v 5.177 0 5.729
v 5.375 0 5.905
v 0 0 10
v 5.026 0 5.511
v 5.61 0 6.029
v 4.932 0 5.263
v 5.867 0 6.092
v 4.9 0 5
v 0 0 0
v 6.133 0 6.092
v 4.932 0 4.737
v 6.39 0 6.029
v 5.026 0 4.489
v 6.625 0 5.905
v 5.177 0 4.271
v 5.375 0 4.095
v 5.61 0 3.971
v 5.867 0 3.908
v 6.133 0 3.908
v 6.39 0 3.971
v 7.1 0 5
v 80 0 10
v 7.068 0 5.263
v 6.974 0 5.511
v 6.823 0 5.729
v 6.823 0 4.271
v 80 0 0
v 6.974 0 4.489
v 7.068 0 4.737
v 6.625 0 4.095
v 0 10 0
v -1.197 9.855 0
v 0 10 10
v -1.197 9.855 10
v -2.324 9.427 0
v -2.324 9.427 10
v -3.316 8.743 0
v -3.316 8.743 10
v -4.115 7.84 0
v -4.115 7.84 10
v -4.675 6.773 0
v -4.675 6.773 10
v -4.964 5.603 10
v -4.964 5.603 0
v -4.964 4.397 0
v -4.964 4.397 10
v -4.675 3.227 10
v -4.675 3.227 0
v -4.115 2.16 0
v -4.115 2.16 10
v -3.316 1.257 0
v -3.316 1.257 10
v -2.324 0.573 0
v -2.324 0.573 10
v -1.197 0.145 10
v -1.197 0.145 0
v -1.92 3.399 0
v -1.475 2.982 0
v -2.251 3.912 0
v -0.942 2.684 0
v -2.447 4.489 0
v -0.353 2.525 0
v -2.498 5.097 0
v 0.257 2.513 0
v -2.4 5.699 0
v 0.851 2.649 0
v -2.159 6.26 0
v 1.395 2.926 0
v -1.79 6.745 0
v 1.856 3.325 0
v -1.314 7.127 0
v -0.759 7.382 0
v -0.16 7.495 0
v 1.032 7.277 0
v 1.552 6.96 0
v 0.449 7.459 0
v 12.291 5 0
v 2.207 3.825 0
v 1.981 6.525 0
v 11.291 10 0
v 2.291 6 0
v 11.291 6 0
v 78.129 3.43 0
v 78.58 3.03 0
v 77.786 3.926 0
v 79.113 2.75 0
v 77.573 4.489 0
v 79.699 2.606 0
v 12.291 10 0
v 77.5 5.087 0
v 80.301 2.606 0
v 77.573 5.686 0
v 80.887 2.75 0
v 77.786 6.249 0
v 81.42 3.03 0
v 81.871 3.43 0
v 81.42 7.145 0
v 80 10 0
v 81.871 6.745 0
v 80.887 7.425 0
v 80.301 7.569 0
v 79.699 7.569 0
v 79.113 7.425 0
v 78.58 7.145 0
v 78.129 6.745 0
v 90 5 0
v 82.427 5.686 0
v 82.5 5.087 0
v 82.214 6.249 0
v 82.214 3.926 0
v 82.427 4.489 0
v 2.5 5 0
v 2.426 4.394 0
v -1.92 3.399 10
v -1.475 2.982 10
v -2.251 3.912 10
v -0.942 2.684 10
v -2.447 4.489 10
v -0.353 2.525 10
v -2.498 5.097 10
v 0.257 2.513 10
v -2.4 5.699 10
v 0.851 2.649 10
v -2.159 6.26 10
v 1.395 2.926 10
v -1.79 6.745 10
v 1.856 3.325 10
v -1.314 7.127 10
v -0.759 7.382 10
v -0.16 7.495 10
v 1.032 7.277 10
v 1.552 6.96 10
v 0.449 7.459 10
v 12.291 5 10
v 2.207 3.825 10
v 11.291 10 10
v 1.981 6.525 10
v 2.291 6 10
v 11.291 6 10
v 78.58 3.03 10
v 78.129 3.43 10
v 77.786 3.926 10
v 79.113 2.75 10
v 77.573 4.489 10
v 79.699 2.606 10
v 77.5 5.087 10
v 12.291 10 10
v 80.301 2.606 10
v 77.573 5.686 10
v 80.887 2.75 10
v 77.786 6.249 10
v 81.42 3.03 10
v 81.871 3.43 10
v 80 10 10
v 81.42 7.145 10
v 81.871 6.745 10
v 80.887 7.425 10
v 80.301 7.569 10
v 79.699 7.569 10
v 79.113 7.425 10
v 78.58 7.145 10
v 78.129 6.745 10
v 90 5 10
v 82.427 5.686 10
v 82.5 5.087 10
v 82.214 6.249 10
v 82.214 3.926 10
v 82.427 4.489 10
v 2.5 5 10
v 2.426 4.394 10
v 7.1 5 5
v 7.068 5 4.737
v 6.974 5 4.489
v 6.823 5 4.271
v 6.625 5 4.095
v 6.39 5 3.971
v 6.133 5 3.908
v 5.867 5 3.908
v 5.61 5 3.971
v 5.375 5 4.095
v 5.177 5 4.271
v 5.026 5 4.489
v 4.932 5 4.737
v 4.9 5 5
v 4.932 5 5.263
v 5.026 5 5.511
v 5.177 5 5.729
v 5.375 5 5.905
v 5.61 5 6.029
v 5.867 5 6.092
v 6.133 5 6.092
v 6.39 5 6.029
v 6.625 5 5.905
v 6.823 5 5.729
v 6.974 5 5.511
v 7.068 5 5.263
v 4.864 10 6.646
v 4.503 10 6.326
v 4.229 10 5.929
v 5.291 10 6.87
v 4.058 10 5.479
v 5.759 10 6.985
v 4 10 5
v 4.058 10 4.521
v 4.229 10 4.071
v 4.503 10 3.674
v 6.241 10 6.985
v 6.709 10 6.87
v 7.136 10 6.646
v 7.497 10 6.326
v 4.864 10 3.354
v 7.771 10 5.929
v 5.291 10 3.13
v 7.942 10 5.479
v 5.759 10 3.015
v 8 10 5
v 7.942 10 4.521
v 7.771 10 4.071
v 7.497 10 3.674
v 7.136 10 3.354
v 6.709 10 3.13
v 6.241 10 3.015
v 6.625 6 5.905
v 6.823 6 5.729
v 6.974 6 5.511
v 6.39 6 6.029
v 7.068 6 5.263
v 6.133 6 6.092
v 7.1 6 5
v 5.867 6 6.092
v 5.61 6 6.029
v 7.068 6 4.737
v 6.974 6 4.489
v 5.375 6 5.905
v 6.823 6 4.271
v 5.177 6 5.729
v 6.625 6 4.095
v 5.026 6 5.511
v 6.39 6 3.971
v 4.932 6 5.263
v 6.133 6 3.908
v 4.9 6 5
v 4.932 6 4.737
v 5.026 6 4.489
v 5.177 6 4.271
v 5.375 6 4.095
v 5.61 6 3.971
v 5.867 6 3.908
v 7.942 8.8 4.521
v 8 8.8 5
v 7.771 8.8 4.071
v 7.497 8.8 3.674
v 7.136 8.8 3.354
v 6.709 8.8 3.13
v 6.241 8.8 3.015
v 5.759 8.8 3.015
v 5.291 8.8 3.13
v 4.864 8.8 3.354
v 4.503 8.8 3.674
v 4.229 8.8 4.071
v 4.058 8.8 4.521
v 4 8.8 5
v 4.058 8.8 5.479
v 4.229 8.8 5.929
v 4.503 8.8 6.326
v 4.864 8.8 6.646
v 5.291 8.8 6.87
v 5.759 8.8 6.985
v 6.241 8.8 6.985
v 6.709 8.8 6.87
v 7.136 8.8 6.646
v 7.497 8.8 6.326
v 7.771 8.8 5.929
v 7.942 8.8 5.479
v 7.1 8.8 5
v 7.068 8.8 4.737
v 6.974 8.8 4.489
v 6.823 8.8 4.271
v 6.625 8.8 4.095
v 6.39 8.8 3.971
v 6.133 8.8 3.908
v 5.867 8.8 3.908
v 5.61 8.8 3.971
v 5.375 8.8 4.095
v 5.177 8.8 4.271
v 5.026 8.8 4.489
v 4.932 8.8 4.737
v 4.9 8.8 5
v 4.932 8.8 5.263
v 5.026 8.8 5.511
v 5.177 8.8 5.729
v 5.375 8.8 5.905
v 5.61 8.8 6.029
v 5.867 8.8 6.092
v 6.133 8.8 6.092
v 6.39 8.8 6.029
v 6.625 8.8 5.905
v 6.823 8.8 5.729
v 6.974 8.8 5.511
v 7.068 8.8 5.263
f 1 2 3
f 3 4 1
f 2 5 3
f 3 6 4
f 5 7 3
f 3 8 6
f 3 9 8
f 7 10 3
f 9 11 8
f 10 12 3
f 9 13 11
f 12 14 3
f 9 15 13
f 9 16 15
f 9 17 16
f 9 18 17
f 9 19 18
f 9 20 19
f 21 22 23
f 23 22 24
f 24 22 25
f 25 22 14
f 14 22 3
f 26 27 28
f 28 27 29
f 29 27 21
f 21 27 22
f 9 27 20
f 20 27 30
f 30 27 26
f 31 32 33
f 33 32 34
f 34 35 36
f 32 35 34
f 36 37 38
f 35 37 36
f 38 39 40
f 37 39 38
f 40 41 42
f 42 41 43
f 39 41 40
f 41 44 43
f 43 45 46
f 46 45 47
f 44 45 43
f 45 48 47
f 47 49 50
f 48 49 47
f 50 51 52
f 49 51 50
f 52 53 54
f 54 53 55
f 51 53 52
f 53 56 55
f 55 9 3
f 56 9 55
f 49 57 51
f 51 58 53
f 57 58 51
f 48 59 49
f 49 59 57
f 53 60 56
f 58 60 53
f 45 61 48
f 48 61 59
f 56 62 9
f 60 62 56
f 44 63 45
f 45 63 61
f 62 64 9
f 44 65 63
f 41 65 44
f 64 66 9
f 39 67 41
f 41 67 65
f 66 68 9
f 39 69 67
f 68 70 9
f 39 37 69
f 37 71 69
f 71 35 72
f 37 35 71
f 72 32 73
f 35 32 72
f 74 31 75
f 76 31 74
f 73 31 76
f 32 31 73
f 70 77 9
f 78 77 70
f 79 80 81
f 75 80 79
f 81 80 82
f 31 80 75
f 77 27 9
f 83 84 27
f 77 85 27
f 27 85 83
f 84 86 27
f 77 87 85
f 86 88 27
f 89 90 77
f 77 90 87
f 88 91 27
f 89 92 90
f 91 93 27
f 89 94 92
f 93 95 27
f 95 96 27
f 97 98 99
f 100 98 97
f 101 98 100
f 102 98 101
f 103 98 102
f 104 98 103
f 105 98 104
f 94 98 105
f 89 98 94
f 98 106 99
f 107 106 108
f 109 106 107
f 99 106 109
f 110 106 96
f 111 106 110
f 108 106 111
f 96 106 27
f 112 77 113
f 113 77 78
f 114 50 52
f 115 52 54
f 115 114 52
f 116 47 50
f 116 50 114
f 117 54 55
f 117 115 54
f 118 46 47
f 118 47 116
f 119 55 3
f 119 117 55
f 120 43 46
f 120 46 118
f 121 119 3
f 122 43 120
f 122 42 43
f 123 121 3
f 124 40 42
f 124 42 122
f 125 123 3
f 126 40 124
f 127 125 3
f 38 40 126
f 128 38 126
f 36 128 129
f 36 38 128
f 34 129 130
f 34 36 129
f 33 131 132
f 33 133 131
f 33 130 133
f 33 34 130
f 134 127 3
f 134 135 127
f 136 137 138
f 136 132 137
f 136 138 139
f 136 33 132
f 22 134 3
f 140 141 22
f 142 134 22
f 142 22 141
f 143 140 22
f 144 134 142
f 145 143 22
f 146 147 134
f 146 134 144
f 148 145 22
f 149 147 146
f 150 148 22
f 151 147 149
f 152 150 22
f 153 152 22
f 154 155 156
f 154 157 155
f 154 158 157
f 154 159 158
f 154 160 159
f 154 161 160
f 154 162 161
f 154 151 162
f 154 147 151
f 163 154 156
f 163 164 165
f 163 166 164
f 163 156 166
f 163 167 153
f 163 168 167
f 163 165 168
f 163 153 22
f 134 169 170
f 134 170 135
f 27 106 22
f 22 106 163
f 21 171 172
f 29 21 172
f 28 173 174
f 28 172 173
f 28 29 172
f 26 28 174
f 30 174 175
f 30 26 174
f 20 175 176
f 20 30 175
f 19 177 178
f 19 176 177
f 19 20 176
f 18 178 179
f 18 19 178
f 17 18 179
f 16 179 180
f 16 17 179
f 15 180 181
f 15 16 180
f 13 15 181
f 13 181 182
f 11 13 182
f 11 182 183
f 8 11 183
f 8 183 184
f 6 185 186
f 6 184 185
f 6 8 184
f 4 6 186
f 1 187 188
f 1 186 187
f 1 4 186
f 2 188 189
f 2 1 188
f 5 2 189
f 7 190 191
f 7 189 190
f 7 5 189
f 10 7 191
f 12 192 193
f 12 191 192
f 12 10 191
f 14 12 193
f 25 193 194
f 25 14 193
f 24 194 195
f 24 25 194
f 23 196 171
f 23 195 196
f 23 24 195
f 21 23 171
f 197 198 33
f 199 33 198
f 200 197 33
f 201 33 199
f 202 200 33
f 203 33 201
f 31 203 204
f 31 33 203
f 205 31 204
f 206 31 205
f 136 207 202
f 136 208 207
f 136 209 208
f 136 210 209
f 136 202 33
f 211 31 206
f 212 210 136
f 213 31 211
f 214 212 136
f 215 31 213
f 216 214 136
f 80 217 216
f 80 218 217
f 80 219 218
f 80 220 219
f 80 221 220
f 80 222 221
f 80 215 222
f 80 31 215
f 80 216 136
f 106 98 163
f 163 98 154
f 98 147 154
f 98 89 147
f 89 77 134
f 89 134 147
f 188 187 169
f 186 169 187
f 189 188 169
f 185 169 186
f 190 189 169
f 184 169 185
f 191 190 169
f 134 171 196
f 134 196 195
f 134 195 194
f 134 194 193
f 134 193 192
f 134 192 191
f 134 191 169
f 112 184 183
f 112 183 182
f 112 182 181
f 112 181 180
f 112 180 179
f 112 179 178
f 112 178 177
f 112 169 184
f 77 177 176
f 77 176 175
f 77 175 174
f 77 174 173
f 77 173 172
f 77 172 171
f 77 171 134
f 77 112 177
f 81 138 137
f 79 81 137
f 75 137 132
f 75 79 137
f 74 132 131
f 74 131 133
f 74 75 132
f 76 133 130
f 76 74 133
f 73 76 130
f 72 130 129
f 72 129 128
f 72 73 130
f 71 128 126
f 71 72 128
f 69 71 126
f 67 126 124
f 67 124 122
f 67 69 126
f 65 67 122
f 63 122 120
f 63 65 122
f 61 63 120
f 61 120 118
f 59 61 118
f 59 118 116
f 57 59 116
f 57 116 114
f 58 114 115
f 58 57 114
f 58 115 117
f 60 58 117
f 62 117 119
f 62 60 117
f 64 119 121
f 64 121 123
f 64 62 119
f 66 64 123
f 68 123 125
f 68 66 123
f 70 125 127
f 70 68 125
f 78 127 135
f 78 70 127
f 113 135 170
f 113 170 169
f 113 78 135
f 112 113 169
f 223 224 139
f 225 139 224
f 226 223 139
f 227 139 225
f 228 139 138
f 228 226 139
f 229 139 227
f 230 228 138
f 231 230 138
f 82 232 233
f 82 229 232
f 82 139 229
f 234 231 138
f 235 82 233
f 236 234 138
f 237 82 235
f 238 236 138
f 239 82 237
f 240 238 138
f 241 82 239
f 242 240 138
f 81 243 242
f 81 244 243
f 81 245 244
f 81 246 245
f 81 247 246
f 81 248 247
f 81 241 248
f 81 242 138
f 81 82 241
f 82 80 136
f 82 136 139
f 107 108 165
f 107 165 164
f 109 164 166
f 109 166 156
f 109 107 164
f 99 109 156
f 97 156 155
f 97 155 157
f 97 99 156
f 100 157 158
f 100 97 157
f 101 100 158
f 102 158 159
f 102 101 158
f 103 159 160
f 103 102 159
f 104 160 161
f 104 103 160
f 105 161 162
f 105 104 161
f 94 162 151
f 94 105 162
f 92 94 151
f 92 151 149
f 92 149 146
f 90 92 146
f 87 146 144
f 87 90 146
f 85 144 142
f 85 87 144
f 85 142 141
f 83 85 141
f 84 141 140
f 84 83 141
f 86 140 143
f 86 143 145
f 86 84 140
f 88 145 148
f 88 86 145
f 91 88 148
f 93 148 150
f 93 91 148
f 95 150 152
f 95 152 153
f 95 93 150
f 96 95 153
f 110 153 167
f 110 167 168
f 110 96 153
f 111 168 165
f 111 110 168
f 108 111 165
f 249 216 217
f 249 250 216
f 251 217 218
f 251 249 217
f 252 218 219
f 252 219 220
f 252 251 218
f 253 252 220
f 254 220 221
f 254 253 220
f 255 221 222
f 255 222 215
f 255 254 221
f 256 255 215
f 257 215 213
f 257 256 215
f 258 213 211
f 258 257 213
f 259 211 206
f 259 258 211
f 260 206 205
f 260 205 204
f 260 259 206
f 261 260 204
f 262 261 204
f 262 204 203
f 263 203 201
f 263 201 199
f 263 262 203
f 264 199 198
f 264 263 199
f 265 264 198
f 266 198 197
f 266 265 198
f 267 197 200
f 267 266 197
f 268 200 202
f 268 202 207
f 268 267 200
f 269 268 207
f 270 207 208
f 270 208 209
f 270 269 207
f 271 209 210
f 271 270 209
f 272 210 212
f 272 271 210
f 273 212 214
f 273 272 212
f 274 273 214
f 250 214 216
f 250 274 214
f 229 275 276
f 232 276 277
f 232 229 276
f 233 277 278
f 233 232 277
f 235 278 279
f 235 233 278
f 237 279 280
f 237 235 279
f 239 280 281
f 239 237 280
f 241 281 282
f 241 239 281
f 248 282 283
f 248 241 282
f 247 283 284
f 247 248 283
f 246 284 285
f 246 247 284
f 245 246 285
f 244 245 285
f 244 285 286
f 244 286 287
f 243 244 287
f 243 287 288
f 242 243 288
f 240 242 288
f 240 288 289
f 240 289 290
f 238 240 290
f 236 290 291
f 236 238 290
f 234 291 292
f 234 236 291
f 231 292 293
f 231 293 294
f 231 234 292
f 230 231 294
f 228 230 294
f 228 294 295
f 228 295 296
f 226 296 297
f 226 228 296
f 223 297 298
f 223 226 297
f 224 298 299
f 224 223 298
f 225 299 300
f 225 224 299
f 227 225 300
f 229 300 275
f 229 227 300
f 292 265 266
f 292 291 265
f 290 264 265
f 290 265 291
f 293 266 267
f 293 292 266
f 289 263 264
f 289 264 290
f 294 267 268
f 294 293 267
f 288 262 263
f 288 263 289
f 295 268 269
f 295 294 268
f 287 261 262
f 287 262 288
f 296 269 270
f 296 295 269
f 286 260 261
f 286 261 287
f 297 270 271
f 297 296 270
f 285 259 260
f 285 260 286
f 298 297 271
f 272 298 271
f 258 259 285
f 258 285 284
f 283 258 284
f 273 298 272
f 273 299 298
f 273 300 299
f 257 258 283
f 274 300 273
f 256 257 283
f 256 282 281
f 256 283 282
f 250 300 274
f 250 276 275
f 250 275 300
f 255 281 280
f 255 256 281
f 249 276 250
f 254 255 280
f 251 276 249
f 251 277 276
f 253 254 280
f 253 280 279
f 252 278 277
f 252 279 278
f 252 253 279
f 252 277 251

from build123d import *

# Parameters (mm, degrees)
SKETCH001_R      = 2.5
PAD_DEPTH        = 10
HOLE_D           = 2.2
HOLE_DEPTH       = 25
HOLE_CBORE_D     = 4
HOLE_CBORE_DEPTH = 1.2


with BuildPart() as part:
    # Sketch001 → Pad (new body)
    with BuildSketch(Plane.XY):
        with BuildLine():
            Line((0, 0), (80, 0))
            Line((80, 0), (90, 5))
            Line((90, 5), (80, 10))
            Line((80, 10), (12.291288, 10))
            Line((12.291288, 5), (12.291288, 10))
            Line((2.5, 5), (12.291288, 5))
            ThreePointArc((2.291288, 6), (-2.447266, 4.489226), (2.5, 5))
            Line((11.291288, 6), (2.291288, 6))
            Line((11.291288, 10), (11.291288, 6))
            Line((0, 10), (11.291288, 10))
            ThreePointArc((0, 10), (-5, 5), (0, 0))
        make_face()
        with Locations((80, 5.087405)):
            Circle(SKETCH001_R, mode=Mode.SUBTRACT)
    extrude(amount=PAD_DEPTH)

    # Hole
    with Locations(Plane(origin=(0, 10, 0), x_dir=(-1, 0, 0), z_dir=(0, 1, 0))):
        with Locations((-6, 5)):
            CounterBoreHole(HOLE_D / 2, HOLE_CBORE_D / 2, HOLE_CBORE_DEPTH, depth=HOLE_DEPTH)


solid = part.part
